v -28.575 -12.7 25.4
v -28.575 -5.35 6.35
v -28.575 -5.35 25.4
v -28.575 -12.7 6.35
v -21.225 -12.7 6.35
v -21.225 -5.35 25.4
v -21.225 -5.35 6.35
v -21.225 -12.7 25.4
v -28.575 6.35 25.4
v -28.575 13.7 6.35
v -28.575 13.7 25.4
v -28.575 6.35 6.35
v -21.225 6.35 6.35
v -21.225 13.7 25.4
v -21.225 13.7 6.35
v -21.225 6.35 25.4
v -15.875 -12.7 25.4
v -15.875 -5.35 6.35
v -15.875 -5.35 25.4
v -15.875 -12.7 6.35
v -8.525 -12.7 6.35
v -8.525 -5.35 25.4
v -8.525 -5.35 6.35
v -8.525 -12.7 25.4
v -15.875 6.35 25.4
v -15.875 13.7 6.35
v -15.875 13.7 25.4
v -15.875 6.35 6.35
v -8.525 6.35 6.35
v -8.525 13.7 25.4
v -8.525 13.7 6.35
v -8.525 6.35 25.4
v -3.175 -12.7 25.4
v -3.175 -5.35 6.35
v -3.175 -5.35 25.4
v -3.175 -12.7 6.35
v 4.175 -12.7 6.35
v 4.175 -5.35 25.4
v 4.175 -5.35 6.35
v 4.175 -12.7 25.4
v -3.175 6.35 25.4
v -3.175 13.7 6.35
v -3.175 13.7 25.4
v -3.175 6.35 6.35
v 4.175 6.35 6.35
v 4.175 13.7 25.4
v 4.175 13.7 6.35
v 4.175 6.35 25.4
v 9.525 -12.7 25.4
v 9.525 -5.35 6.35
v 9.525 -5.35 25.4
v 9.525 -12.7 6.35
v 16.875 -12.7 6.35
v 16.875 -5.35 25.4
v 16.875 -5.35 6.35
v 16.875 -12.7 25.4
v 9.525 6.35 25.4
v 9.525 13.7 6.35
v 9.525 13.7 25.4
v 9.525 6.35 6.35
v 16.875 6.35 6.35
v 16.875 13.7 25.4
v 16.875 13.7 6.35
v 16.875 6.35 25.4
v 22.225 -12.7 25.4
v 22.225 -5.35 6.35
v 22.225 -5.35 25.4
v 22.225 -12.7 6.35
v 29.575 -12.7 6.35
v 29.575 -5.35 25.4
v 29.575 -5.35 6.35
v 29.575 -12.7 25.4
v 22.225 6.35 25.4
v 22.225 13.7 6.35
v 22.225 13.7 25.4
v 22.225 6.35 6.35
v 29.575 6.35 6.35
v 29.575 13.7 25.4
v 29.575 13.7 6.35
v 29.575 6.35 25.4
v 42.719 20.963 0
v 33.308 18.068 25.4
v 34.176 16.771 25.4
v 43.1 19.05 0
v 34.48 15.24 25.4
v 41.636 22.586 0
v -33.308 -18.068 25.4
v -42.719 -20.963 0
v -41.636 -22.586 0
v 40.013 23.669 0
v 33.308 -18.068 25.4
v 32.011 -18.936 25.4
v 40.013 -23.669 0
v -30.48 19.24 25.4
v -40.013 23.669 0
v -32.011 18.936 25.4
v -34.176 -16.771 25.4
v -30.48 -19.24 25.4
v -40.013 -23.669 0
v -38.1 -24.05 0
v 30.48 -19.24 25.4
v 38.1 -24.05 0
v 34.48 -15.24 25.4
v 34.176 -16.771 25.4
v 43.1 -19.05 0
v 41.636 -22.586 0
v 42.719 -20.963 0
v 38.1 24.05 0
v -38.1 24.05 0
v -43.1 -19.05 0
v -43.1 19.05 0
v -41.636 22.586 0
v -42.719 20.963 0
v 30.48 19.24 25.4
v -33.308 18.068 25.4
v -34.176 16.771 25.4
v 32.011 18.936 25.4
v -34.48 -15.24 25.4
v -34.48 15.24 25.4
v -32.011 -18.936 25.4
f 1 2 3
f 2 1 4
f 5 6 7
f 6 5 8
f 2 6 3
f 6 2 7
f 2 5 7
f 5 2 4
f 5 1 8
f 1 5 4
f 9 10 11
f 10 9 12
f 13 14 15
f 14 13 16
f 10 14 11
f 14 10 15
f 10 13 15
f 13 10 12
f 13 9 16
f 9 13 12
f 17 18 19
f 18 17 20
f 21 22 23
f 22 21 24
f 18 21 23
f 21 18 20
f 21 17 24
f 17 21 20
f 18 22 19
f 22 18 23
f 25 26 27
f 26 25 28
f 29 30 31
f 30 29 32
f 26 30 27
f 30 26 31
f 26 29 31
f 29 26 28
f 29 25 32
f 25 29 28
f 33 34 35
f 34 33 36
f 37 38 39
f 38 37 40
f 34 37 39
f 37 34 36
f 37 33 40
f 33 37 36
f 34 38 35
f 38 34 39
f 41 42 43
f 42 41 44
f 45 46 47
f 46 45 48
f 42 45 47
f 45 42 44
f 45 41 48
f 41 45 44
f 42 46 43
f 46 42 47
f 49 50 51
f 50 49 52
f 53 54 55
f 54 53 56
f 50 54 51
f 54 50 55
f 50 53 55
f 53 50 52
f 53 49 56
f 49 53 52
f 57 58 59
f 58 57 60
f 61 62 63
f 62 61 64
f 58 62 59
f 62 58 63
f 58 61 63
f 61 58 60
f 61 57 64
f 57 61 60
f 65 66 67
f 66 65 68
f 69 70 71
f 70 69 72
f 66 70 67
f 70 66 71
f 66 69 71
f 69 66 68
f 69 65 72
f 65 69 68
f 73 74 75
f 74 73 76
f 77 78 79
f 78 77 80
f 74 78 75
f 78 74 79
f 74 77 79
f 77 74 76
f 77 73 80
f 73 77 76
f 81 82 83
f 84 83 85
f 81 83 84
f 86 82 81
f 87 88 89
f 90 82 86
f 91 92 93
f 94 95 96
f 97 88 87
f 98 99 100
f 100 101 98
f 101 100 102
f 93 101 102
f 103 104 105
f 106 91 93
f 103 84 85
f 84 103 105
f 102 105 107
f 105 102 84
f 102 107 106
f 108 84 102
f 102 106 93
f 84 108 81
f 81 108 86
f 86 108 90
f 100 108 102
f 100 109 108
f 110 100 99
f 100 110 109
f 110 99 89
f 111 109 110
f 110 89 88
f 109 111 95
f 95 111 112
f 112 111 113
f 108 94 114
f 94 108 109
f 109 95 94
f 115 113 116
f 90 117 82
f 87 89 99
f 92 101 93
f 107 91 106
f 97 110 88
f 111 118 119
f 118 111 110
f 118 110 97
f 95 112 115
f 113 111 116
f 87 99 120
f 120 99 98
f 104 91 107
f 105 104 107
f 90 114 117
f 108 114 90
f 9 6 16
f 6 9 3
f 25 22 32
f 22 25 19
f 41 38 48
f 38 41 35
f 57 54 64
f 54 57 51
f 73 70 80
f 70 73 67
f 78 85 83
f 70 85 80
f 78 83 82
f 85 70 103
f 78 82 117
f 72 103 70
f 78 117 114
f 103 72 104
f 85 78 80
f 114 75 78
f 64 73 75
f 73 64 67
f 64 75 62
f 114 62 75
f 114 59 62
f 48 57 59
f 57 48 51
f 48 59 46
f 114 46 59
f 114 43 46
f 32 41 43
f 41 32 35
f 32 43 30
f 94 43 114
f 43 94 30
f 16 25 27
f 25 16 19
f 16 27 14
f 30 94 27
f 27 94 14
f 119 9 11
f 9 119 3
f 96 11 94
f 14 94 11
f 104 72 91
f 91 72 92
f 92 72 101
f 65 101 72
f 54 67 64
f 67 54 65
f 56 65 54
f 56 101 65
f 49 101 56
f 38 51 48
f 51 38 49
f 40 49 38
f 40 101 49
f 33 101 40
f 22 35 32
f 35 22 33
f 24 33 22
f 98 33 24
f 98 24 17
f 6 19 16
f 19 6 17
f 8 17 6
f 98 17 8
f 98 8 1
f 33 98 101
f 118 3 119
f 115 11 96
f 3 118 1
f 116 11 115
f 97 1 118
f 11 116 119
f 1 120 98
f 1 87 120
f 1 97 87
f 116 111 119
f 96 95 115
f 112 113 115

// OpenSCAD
mmpi = 25.4;

height    = 1.00 * mmpi;
top_width = 2.75 * mmpi;
top_depth = 1.25 * mmpi;

bottom_width = 3.00 * mmpi;
bottom_depth = 1.50 * mmpi;

hole_size    = 0.25 * mmpi + 1.0;
hole_depth   = 0.75 * mmpi;

tool_height  = 2.50 * mmpi;
tool_clear   = 0.25 * mmpi;
tool_space   = 0.25 * mmpi;

difference() {
    linear_extrude( height = height, scale=0.8 )
        minkowski() {
            square( size = [ bottom_width, bottom_depth ], center=true );
            circle( r=5 );
        }

    for( i=[ -4.5 * tool_space : tool_space * 2 : 4 * tool_space ] ) {
        for( j=[ -2 * tool_space : tool_space * 3 : 2 * tool_space ] ) {
            translate( [ i, j, tool_clear ] )
            cube( [ hole_size, hole_size, tool_height ] );
        }
    }
}
